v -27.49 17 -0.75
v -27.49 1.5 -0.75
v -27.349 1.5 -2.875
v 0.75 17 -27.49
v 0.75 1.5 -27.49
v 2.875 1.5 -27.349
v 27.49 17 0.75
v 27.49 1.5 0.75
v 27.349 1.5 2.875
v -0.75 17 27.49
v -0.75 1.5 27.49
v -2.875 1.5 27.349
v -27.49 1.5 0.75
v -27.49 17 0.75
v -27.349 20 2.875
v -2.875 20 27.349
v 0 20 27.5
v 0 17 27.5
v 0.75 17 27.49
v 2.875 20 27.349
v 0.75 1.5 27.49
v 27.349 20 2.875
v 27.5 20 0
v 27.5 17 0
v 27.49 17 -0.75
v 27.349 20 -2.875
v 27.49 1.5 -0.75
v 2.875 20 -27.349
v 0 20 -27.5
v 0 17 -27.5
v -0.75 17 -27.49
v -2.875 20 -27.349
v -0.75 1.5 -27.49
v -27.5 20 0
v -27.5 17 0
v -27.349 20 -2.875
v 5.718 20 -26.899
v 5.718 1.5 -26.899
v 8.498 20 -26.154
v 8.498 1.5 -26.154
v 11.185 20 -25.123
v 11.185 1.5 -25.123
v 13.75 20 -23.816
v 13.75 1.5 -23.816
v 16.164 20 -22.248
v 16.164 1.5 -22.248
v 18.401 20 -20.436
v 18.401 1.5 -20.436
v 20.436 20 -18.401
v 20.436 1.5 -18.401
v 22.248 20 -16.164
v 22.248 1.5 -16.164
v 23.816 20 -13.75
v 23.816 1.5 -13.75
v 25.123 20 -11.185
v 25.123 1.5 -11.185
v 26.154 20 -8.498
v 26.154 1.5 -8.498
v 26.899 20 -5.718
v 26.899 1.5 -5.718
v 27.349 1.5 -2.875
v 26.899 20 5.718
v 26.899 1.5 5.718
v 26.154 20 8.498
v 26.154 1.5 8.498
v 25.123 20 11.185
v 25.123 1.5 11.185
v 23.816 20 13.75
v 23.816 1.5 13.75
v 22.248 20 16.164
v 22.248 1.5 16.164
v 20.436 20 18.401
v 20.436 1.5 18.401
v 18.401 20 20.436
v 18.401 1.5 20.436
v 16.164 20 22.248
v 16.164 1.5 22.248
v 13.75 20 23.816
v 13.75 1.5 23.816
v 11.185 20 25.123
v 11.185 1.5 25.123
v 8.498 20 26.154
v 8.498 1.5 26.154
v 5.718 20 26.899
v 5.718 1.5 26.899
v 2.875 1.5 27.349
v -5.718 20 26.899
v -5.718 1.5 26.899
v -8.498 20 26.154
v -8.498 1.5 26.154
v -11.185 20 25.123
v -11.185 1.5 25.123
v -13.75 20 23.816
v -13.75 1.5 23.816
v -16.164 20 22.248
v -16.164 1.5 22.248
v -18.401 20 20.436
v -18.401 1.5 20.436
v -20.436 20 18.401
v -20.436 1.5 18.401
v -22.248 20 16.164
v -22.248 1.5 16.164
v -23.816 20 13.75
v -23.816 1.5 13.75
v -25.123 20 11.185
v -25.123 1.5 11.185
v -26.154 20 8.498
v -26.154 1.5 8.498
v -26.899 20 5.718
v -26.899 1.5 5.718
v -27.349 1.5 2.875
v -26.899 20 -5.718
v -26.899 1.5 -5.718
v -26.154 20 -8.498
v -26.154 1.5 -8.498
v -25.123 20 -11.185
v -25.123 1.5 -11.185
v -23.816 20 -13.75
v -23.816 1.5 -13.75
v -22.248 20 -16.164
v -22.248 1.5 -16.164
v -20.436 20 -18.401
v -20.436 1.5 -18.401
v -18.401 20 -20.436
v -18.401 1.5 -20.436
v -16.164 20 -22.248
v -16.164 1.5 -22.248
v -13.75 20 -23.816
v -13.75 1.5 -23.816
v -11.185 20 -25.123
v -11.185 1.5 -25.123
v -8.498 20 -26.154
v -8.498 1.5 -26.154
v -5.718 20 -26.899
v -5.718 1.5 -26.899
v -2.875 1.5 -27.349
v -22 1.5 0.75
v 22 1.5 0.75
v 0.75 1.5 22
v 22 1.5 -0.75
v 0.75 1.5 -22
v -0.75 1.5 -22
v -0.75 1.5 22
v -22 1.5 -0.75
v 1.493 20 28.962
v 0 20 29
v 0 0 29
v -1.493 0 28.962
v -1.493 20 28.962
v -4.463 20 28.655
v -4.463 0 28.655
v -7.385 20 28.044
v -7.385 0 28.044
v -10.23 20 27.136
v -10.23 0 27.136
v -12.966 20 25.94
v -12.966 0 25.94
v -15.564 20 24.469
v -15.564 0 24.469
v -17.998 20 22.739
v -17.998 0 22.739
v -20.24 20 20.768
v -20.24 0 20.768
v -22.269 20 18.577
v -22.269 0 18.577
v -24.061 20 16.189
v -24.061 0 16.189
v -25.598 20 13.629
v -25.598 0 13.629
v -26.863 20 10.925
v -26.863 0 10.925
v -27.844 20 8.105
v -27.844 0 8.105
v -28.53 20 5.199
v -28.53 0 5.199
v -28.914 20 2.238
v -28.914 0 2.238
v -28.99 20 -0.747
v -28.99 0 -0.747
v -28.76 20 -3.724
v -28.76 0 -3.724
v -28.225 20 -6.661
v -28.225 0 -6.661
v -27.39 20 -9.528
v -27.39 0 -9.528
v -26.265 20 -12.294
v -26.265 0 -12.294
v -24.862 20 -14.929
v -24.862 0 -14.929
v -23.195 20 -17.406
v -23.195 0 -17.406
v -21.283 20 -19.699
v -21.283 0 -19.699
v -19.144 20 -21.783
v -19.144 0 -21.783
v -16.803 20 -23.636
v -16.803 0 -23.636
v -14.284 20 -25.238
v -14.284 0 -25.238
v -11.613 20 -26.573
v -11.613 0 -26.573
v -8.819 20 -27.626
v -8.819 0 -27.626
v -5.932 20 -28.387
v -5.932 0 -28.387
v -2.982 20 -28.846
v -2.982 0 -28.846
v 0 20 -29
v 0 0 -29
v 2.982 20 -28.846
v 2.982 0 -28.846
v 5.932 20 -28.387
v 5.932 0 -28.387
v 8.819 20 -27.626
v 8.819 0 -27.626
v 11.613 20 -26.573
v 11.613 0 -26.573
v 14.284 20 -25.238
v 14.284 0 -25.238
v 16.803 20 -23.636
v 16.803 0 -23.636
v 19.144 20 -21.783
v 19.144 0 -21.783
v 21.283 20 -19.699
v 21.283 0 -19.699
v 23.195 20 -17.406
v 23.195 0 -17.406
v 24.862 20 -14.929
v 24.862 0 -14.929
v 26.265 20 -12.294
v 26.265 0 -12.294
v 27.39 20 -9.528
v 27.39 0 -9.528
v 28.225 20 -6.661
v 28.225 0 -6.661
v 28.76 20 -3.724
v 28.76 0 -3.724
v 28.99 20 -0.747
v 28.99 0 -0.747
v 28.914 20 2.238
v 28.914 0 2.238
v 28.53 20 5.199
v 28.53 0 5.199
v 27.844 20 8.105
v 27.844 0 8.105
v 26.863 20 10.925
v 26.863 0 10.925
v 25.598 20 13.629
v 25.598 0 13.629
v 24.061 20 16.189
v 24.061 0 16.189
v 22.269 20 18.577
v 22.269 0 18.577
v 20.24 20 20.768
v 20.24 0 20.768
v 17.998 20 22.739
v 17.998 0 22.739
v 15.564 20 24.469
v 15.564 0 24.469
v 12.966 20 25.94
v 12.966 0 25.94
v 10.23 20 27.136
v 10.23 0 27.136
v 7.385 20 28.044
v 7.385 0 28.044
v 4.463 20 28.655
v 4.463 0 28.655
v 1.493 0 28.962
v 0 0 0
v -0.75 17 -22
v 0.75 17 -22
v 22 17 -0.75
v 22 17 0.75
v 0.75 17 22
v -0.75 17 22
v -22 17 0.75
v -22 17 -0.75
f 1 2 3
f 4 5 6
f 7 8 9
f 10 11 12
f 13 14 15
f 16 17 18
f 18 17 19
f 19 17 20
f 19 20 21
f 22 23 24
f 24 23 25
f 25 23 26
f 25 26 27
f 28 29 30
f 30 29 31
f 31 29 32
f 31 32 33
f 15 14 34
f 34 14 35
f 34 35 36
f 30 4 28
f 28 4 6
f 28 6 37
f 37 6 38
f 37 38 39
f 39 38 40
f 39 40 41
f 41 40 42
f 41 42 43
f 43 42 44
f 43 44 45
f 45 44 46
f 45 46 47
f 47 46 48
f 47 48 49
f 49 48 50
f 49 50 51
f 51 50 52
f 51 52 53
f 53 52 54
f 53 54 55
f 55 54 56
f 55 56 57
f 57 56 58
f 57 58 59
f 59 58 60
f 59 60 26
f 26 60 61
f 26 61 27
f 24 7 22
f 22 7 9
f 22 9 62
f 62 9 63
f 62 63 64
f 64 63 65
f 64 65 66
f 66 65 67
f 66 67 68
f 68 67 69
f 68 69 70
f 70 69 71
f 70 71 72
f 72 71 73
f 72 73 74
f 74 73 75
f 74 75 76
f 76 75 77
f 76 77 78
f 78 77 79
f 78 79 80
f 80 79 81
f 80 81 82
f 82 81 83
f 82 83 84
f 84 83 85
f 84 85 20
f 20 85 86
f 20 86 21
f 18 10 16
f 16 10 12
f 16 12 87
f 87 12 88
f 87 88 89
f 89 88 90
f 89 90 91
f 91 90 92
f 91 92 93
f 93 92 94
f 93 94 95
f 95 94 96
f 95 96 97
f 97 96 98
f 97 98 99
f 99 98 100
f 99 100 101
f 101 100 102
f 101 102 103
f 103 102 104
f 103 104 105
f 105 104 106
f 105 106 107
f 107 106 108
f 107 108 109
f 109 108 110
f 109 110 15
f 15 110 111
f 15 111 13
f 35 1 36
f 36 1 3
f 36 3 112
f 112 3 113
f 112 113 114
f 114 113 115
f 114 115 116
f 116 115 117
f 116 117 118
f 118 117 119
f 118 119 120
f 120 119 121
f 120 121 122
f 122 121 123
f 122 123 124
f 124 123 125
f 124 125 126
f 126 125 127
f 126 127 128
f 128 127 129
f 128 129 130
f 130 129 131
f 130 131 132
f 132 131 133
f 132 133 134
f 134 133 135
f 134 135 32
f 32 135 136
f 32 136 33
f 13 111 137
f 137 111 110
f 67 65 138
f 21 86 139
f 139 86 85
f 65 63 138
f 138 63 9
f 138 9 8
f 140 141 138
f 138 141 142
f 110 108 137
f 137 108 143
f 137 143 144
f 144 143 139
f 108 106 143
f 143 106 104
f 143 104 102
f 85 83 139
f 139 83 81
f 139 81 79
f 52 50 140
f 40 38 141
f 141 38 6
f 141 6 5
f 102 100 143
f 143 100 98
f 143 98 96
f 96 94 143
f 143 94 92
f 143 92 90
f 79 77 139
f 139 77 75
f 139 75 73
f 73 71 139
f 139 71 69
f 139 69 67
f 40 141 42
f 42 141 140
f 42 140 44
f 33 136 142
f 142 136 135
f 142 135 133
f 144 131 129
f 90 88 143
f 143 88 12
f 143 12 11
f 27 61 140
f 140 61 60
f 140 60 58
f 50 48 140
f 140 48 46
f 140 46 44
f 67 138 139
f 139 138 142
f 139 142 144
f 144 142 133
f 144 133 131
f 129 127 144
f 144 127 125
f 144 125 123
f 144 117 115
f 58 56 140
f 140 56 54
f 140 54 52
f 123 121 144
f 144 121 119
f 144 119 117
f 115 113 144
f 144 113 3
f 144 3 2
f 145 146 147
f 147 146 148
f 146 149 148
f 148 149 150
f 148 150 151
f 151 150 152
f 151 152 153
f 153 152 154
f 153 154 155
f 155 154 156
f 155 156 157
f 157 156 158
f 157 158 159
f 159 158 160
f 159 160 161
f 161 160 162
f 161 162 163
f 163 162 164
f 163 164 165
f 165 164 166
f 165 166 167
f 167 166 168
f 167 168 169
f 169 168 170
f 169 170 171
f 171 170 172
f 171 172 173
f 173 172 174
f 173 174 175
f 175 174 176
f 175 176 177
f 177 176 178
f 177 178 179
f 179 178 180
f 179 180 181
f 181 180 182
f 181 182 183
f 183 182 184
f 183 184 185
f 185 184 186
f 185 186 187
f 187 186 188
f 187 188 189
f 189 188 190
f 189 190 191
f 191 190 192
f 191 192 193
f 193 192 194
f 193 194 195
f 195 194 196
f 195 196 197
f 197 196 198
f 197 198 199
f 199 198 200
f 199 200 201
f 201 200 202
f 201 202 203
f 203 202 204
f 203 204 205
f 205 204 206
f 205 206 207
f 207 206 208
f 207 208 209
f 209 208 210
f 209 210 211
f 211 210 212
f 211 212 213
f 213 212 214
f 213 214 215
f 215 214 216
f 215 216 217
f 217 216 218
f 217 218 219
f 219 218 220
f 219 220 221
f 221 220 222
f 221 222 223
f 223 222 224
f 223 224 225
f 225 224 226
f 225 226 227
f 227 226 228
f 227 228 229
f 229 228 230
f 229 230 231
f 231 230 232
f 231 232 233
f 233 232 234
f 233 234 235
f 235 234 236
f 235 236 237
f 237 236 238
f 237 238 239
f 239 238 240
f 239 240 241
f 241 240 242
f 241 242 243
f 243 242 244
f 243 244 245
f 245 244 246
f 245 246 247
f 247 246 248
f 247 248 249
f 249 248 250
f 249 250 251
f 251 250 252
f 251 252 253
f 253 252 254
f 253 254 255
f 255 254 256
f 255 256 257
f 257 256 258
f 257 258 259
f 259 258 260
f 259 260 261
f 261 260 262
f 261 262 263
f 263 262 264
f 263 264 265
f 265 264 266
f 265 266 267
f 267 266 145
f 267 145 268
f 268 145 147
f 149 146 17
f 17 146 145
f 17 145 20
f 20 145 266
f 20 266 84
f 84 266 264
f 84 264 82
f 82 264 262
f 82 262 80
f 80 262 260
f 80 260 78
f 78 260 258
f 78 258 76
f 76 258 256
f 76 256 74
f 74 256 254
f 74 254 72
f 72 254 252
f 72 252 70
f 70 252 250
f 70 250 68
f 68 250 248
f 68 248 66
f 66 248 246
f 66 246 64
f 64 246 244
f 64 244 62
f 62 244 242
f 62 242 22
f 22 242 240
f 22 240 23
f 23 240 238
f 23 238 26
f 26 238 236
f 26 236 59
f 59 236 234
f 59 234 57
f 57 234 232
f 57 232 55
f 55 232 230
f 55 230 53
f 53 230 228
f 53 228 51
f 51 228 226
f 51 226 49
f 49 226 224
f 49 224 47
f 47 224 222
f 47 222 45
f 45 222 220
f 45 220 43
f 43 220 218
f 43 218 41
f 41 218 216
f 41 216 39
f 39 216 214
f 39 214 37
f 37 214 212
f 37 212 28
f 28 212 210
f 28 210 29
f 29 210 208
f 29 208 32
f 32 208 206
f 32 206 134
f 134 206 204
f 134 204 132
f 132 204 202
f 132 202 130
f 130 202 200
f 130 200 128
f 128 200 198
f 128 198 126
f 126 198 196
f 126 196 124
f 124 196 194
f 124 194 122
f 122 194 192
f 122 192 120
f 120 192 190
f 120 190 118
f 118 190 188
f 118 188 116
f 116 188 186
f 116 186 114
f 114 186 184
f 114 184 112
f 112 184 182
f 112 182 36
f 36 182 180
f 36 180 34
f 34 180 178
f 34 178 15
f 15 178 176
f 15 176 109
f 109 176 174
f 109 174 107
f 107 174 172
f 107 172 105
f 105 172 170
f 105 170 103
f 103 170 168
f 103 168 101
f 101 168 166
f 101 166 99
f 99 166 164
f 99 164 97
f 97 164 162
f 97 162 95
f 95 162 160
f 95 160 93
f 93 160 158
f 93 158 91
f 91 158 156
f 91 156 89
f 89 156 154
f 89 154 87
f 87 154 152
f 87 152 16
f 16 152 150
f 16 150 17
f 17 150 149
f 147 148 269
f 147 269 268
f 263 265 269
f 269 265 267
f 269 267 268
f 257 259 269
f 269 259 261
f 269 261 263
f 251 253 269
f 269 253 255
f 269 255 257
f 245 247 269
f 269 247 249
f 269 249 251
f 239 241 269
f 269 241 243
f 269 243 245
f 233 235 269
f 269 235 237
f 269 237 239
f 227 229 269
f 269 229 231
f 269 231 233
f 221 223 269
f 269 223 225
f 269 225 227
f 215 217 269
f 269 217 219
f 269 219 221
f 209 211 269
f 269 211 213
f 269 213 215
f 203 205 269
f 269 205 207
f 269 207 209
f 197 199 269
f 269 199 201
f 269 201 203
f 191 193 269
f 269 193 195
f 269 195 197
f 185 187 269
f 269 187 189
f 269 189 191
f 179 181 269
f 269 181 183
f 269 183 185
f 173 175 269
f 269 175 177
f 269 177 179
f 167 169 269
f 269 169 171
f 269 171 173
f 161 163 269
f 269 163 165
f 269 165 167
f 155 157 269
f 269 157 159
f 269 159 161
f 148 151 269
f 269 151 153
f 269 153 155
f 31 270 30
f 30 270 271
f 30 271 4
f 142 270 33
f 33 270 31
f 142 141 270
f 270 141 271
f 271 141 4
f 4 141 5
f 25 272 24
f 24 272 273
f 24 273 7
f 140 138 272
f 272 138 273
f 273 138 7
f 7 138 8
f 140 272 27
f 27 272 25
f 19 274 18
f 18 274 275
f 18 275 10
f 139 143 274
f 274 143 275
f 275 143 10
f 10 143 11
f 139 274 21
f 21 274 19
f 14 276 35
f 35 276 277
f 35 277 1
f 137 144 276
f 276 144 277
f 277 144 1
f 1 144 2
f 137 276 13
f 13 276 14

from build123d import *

# Parameters (mm, degrees)
SKETCH1_R           = 29
BOSS_EXTRUDE1_DEPTH = 20
SHELL1_T            = -1.5
SKETCH2_W           = 1.5
SKETCH2_H           = 6.087803818
SKETCH2_W_2         = 6.087803818
SKETCH2_H_2         = 1.5
BOSS_EXTRUDE2_DEPTH = 15.5


with BuildPart() as part:
    # Sketch1 → Boss-Extrude1 (new body)
    with BuildSketch(Plane(origin=(0, 0, 0), x_dir=(1, 0, 0), z_dir=(0, 1, 0))):
        with Locations(Location((0, 0, 0), (0, 0, 270))):
            Circle(SKETCH1_R)
    extrude(amount=BOSS_EXTRUDE1_DEPTH)

    # Shell1
    shell1_openings = [part.faces().sort_by_distance(p)[0] for p in [
        (0, 20, 0),
    ]]
    offset(amount=SHELL1_T, openings=shell1_openings, kind=Kind.INTERSECTION)

    # Sketch2 → Boss-Extrude2 (add)
    with BuildSketch(Plane(origin=(0, 1.5, 0), x_dir=(1, 0, 0), z_dir=(0, 1, 0))):
        with Locations((0, 25.043901909)):
            Rectangle(SKETCH2_W, SKETCH2_H)
        with Locations((25.043901909, 0)):
            Rectangle(SKETCH2_W_2, SKETCH2_H_2)
        with Locations((0, -25.043901909)):
            Rectangle(SKETCH2_W, SKETCH2_H)
        with Locations((-25.043901909, 0)):
            Rectangle(SKETCH2_W_2, SKETCH2_H_2)
    extrude(amount=BOSS_EXTRUDE2_DEPTH)


solid = part.part
